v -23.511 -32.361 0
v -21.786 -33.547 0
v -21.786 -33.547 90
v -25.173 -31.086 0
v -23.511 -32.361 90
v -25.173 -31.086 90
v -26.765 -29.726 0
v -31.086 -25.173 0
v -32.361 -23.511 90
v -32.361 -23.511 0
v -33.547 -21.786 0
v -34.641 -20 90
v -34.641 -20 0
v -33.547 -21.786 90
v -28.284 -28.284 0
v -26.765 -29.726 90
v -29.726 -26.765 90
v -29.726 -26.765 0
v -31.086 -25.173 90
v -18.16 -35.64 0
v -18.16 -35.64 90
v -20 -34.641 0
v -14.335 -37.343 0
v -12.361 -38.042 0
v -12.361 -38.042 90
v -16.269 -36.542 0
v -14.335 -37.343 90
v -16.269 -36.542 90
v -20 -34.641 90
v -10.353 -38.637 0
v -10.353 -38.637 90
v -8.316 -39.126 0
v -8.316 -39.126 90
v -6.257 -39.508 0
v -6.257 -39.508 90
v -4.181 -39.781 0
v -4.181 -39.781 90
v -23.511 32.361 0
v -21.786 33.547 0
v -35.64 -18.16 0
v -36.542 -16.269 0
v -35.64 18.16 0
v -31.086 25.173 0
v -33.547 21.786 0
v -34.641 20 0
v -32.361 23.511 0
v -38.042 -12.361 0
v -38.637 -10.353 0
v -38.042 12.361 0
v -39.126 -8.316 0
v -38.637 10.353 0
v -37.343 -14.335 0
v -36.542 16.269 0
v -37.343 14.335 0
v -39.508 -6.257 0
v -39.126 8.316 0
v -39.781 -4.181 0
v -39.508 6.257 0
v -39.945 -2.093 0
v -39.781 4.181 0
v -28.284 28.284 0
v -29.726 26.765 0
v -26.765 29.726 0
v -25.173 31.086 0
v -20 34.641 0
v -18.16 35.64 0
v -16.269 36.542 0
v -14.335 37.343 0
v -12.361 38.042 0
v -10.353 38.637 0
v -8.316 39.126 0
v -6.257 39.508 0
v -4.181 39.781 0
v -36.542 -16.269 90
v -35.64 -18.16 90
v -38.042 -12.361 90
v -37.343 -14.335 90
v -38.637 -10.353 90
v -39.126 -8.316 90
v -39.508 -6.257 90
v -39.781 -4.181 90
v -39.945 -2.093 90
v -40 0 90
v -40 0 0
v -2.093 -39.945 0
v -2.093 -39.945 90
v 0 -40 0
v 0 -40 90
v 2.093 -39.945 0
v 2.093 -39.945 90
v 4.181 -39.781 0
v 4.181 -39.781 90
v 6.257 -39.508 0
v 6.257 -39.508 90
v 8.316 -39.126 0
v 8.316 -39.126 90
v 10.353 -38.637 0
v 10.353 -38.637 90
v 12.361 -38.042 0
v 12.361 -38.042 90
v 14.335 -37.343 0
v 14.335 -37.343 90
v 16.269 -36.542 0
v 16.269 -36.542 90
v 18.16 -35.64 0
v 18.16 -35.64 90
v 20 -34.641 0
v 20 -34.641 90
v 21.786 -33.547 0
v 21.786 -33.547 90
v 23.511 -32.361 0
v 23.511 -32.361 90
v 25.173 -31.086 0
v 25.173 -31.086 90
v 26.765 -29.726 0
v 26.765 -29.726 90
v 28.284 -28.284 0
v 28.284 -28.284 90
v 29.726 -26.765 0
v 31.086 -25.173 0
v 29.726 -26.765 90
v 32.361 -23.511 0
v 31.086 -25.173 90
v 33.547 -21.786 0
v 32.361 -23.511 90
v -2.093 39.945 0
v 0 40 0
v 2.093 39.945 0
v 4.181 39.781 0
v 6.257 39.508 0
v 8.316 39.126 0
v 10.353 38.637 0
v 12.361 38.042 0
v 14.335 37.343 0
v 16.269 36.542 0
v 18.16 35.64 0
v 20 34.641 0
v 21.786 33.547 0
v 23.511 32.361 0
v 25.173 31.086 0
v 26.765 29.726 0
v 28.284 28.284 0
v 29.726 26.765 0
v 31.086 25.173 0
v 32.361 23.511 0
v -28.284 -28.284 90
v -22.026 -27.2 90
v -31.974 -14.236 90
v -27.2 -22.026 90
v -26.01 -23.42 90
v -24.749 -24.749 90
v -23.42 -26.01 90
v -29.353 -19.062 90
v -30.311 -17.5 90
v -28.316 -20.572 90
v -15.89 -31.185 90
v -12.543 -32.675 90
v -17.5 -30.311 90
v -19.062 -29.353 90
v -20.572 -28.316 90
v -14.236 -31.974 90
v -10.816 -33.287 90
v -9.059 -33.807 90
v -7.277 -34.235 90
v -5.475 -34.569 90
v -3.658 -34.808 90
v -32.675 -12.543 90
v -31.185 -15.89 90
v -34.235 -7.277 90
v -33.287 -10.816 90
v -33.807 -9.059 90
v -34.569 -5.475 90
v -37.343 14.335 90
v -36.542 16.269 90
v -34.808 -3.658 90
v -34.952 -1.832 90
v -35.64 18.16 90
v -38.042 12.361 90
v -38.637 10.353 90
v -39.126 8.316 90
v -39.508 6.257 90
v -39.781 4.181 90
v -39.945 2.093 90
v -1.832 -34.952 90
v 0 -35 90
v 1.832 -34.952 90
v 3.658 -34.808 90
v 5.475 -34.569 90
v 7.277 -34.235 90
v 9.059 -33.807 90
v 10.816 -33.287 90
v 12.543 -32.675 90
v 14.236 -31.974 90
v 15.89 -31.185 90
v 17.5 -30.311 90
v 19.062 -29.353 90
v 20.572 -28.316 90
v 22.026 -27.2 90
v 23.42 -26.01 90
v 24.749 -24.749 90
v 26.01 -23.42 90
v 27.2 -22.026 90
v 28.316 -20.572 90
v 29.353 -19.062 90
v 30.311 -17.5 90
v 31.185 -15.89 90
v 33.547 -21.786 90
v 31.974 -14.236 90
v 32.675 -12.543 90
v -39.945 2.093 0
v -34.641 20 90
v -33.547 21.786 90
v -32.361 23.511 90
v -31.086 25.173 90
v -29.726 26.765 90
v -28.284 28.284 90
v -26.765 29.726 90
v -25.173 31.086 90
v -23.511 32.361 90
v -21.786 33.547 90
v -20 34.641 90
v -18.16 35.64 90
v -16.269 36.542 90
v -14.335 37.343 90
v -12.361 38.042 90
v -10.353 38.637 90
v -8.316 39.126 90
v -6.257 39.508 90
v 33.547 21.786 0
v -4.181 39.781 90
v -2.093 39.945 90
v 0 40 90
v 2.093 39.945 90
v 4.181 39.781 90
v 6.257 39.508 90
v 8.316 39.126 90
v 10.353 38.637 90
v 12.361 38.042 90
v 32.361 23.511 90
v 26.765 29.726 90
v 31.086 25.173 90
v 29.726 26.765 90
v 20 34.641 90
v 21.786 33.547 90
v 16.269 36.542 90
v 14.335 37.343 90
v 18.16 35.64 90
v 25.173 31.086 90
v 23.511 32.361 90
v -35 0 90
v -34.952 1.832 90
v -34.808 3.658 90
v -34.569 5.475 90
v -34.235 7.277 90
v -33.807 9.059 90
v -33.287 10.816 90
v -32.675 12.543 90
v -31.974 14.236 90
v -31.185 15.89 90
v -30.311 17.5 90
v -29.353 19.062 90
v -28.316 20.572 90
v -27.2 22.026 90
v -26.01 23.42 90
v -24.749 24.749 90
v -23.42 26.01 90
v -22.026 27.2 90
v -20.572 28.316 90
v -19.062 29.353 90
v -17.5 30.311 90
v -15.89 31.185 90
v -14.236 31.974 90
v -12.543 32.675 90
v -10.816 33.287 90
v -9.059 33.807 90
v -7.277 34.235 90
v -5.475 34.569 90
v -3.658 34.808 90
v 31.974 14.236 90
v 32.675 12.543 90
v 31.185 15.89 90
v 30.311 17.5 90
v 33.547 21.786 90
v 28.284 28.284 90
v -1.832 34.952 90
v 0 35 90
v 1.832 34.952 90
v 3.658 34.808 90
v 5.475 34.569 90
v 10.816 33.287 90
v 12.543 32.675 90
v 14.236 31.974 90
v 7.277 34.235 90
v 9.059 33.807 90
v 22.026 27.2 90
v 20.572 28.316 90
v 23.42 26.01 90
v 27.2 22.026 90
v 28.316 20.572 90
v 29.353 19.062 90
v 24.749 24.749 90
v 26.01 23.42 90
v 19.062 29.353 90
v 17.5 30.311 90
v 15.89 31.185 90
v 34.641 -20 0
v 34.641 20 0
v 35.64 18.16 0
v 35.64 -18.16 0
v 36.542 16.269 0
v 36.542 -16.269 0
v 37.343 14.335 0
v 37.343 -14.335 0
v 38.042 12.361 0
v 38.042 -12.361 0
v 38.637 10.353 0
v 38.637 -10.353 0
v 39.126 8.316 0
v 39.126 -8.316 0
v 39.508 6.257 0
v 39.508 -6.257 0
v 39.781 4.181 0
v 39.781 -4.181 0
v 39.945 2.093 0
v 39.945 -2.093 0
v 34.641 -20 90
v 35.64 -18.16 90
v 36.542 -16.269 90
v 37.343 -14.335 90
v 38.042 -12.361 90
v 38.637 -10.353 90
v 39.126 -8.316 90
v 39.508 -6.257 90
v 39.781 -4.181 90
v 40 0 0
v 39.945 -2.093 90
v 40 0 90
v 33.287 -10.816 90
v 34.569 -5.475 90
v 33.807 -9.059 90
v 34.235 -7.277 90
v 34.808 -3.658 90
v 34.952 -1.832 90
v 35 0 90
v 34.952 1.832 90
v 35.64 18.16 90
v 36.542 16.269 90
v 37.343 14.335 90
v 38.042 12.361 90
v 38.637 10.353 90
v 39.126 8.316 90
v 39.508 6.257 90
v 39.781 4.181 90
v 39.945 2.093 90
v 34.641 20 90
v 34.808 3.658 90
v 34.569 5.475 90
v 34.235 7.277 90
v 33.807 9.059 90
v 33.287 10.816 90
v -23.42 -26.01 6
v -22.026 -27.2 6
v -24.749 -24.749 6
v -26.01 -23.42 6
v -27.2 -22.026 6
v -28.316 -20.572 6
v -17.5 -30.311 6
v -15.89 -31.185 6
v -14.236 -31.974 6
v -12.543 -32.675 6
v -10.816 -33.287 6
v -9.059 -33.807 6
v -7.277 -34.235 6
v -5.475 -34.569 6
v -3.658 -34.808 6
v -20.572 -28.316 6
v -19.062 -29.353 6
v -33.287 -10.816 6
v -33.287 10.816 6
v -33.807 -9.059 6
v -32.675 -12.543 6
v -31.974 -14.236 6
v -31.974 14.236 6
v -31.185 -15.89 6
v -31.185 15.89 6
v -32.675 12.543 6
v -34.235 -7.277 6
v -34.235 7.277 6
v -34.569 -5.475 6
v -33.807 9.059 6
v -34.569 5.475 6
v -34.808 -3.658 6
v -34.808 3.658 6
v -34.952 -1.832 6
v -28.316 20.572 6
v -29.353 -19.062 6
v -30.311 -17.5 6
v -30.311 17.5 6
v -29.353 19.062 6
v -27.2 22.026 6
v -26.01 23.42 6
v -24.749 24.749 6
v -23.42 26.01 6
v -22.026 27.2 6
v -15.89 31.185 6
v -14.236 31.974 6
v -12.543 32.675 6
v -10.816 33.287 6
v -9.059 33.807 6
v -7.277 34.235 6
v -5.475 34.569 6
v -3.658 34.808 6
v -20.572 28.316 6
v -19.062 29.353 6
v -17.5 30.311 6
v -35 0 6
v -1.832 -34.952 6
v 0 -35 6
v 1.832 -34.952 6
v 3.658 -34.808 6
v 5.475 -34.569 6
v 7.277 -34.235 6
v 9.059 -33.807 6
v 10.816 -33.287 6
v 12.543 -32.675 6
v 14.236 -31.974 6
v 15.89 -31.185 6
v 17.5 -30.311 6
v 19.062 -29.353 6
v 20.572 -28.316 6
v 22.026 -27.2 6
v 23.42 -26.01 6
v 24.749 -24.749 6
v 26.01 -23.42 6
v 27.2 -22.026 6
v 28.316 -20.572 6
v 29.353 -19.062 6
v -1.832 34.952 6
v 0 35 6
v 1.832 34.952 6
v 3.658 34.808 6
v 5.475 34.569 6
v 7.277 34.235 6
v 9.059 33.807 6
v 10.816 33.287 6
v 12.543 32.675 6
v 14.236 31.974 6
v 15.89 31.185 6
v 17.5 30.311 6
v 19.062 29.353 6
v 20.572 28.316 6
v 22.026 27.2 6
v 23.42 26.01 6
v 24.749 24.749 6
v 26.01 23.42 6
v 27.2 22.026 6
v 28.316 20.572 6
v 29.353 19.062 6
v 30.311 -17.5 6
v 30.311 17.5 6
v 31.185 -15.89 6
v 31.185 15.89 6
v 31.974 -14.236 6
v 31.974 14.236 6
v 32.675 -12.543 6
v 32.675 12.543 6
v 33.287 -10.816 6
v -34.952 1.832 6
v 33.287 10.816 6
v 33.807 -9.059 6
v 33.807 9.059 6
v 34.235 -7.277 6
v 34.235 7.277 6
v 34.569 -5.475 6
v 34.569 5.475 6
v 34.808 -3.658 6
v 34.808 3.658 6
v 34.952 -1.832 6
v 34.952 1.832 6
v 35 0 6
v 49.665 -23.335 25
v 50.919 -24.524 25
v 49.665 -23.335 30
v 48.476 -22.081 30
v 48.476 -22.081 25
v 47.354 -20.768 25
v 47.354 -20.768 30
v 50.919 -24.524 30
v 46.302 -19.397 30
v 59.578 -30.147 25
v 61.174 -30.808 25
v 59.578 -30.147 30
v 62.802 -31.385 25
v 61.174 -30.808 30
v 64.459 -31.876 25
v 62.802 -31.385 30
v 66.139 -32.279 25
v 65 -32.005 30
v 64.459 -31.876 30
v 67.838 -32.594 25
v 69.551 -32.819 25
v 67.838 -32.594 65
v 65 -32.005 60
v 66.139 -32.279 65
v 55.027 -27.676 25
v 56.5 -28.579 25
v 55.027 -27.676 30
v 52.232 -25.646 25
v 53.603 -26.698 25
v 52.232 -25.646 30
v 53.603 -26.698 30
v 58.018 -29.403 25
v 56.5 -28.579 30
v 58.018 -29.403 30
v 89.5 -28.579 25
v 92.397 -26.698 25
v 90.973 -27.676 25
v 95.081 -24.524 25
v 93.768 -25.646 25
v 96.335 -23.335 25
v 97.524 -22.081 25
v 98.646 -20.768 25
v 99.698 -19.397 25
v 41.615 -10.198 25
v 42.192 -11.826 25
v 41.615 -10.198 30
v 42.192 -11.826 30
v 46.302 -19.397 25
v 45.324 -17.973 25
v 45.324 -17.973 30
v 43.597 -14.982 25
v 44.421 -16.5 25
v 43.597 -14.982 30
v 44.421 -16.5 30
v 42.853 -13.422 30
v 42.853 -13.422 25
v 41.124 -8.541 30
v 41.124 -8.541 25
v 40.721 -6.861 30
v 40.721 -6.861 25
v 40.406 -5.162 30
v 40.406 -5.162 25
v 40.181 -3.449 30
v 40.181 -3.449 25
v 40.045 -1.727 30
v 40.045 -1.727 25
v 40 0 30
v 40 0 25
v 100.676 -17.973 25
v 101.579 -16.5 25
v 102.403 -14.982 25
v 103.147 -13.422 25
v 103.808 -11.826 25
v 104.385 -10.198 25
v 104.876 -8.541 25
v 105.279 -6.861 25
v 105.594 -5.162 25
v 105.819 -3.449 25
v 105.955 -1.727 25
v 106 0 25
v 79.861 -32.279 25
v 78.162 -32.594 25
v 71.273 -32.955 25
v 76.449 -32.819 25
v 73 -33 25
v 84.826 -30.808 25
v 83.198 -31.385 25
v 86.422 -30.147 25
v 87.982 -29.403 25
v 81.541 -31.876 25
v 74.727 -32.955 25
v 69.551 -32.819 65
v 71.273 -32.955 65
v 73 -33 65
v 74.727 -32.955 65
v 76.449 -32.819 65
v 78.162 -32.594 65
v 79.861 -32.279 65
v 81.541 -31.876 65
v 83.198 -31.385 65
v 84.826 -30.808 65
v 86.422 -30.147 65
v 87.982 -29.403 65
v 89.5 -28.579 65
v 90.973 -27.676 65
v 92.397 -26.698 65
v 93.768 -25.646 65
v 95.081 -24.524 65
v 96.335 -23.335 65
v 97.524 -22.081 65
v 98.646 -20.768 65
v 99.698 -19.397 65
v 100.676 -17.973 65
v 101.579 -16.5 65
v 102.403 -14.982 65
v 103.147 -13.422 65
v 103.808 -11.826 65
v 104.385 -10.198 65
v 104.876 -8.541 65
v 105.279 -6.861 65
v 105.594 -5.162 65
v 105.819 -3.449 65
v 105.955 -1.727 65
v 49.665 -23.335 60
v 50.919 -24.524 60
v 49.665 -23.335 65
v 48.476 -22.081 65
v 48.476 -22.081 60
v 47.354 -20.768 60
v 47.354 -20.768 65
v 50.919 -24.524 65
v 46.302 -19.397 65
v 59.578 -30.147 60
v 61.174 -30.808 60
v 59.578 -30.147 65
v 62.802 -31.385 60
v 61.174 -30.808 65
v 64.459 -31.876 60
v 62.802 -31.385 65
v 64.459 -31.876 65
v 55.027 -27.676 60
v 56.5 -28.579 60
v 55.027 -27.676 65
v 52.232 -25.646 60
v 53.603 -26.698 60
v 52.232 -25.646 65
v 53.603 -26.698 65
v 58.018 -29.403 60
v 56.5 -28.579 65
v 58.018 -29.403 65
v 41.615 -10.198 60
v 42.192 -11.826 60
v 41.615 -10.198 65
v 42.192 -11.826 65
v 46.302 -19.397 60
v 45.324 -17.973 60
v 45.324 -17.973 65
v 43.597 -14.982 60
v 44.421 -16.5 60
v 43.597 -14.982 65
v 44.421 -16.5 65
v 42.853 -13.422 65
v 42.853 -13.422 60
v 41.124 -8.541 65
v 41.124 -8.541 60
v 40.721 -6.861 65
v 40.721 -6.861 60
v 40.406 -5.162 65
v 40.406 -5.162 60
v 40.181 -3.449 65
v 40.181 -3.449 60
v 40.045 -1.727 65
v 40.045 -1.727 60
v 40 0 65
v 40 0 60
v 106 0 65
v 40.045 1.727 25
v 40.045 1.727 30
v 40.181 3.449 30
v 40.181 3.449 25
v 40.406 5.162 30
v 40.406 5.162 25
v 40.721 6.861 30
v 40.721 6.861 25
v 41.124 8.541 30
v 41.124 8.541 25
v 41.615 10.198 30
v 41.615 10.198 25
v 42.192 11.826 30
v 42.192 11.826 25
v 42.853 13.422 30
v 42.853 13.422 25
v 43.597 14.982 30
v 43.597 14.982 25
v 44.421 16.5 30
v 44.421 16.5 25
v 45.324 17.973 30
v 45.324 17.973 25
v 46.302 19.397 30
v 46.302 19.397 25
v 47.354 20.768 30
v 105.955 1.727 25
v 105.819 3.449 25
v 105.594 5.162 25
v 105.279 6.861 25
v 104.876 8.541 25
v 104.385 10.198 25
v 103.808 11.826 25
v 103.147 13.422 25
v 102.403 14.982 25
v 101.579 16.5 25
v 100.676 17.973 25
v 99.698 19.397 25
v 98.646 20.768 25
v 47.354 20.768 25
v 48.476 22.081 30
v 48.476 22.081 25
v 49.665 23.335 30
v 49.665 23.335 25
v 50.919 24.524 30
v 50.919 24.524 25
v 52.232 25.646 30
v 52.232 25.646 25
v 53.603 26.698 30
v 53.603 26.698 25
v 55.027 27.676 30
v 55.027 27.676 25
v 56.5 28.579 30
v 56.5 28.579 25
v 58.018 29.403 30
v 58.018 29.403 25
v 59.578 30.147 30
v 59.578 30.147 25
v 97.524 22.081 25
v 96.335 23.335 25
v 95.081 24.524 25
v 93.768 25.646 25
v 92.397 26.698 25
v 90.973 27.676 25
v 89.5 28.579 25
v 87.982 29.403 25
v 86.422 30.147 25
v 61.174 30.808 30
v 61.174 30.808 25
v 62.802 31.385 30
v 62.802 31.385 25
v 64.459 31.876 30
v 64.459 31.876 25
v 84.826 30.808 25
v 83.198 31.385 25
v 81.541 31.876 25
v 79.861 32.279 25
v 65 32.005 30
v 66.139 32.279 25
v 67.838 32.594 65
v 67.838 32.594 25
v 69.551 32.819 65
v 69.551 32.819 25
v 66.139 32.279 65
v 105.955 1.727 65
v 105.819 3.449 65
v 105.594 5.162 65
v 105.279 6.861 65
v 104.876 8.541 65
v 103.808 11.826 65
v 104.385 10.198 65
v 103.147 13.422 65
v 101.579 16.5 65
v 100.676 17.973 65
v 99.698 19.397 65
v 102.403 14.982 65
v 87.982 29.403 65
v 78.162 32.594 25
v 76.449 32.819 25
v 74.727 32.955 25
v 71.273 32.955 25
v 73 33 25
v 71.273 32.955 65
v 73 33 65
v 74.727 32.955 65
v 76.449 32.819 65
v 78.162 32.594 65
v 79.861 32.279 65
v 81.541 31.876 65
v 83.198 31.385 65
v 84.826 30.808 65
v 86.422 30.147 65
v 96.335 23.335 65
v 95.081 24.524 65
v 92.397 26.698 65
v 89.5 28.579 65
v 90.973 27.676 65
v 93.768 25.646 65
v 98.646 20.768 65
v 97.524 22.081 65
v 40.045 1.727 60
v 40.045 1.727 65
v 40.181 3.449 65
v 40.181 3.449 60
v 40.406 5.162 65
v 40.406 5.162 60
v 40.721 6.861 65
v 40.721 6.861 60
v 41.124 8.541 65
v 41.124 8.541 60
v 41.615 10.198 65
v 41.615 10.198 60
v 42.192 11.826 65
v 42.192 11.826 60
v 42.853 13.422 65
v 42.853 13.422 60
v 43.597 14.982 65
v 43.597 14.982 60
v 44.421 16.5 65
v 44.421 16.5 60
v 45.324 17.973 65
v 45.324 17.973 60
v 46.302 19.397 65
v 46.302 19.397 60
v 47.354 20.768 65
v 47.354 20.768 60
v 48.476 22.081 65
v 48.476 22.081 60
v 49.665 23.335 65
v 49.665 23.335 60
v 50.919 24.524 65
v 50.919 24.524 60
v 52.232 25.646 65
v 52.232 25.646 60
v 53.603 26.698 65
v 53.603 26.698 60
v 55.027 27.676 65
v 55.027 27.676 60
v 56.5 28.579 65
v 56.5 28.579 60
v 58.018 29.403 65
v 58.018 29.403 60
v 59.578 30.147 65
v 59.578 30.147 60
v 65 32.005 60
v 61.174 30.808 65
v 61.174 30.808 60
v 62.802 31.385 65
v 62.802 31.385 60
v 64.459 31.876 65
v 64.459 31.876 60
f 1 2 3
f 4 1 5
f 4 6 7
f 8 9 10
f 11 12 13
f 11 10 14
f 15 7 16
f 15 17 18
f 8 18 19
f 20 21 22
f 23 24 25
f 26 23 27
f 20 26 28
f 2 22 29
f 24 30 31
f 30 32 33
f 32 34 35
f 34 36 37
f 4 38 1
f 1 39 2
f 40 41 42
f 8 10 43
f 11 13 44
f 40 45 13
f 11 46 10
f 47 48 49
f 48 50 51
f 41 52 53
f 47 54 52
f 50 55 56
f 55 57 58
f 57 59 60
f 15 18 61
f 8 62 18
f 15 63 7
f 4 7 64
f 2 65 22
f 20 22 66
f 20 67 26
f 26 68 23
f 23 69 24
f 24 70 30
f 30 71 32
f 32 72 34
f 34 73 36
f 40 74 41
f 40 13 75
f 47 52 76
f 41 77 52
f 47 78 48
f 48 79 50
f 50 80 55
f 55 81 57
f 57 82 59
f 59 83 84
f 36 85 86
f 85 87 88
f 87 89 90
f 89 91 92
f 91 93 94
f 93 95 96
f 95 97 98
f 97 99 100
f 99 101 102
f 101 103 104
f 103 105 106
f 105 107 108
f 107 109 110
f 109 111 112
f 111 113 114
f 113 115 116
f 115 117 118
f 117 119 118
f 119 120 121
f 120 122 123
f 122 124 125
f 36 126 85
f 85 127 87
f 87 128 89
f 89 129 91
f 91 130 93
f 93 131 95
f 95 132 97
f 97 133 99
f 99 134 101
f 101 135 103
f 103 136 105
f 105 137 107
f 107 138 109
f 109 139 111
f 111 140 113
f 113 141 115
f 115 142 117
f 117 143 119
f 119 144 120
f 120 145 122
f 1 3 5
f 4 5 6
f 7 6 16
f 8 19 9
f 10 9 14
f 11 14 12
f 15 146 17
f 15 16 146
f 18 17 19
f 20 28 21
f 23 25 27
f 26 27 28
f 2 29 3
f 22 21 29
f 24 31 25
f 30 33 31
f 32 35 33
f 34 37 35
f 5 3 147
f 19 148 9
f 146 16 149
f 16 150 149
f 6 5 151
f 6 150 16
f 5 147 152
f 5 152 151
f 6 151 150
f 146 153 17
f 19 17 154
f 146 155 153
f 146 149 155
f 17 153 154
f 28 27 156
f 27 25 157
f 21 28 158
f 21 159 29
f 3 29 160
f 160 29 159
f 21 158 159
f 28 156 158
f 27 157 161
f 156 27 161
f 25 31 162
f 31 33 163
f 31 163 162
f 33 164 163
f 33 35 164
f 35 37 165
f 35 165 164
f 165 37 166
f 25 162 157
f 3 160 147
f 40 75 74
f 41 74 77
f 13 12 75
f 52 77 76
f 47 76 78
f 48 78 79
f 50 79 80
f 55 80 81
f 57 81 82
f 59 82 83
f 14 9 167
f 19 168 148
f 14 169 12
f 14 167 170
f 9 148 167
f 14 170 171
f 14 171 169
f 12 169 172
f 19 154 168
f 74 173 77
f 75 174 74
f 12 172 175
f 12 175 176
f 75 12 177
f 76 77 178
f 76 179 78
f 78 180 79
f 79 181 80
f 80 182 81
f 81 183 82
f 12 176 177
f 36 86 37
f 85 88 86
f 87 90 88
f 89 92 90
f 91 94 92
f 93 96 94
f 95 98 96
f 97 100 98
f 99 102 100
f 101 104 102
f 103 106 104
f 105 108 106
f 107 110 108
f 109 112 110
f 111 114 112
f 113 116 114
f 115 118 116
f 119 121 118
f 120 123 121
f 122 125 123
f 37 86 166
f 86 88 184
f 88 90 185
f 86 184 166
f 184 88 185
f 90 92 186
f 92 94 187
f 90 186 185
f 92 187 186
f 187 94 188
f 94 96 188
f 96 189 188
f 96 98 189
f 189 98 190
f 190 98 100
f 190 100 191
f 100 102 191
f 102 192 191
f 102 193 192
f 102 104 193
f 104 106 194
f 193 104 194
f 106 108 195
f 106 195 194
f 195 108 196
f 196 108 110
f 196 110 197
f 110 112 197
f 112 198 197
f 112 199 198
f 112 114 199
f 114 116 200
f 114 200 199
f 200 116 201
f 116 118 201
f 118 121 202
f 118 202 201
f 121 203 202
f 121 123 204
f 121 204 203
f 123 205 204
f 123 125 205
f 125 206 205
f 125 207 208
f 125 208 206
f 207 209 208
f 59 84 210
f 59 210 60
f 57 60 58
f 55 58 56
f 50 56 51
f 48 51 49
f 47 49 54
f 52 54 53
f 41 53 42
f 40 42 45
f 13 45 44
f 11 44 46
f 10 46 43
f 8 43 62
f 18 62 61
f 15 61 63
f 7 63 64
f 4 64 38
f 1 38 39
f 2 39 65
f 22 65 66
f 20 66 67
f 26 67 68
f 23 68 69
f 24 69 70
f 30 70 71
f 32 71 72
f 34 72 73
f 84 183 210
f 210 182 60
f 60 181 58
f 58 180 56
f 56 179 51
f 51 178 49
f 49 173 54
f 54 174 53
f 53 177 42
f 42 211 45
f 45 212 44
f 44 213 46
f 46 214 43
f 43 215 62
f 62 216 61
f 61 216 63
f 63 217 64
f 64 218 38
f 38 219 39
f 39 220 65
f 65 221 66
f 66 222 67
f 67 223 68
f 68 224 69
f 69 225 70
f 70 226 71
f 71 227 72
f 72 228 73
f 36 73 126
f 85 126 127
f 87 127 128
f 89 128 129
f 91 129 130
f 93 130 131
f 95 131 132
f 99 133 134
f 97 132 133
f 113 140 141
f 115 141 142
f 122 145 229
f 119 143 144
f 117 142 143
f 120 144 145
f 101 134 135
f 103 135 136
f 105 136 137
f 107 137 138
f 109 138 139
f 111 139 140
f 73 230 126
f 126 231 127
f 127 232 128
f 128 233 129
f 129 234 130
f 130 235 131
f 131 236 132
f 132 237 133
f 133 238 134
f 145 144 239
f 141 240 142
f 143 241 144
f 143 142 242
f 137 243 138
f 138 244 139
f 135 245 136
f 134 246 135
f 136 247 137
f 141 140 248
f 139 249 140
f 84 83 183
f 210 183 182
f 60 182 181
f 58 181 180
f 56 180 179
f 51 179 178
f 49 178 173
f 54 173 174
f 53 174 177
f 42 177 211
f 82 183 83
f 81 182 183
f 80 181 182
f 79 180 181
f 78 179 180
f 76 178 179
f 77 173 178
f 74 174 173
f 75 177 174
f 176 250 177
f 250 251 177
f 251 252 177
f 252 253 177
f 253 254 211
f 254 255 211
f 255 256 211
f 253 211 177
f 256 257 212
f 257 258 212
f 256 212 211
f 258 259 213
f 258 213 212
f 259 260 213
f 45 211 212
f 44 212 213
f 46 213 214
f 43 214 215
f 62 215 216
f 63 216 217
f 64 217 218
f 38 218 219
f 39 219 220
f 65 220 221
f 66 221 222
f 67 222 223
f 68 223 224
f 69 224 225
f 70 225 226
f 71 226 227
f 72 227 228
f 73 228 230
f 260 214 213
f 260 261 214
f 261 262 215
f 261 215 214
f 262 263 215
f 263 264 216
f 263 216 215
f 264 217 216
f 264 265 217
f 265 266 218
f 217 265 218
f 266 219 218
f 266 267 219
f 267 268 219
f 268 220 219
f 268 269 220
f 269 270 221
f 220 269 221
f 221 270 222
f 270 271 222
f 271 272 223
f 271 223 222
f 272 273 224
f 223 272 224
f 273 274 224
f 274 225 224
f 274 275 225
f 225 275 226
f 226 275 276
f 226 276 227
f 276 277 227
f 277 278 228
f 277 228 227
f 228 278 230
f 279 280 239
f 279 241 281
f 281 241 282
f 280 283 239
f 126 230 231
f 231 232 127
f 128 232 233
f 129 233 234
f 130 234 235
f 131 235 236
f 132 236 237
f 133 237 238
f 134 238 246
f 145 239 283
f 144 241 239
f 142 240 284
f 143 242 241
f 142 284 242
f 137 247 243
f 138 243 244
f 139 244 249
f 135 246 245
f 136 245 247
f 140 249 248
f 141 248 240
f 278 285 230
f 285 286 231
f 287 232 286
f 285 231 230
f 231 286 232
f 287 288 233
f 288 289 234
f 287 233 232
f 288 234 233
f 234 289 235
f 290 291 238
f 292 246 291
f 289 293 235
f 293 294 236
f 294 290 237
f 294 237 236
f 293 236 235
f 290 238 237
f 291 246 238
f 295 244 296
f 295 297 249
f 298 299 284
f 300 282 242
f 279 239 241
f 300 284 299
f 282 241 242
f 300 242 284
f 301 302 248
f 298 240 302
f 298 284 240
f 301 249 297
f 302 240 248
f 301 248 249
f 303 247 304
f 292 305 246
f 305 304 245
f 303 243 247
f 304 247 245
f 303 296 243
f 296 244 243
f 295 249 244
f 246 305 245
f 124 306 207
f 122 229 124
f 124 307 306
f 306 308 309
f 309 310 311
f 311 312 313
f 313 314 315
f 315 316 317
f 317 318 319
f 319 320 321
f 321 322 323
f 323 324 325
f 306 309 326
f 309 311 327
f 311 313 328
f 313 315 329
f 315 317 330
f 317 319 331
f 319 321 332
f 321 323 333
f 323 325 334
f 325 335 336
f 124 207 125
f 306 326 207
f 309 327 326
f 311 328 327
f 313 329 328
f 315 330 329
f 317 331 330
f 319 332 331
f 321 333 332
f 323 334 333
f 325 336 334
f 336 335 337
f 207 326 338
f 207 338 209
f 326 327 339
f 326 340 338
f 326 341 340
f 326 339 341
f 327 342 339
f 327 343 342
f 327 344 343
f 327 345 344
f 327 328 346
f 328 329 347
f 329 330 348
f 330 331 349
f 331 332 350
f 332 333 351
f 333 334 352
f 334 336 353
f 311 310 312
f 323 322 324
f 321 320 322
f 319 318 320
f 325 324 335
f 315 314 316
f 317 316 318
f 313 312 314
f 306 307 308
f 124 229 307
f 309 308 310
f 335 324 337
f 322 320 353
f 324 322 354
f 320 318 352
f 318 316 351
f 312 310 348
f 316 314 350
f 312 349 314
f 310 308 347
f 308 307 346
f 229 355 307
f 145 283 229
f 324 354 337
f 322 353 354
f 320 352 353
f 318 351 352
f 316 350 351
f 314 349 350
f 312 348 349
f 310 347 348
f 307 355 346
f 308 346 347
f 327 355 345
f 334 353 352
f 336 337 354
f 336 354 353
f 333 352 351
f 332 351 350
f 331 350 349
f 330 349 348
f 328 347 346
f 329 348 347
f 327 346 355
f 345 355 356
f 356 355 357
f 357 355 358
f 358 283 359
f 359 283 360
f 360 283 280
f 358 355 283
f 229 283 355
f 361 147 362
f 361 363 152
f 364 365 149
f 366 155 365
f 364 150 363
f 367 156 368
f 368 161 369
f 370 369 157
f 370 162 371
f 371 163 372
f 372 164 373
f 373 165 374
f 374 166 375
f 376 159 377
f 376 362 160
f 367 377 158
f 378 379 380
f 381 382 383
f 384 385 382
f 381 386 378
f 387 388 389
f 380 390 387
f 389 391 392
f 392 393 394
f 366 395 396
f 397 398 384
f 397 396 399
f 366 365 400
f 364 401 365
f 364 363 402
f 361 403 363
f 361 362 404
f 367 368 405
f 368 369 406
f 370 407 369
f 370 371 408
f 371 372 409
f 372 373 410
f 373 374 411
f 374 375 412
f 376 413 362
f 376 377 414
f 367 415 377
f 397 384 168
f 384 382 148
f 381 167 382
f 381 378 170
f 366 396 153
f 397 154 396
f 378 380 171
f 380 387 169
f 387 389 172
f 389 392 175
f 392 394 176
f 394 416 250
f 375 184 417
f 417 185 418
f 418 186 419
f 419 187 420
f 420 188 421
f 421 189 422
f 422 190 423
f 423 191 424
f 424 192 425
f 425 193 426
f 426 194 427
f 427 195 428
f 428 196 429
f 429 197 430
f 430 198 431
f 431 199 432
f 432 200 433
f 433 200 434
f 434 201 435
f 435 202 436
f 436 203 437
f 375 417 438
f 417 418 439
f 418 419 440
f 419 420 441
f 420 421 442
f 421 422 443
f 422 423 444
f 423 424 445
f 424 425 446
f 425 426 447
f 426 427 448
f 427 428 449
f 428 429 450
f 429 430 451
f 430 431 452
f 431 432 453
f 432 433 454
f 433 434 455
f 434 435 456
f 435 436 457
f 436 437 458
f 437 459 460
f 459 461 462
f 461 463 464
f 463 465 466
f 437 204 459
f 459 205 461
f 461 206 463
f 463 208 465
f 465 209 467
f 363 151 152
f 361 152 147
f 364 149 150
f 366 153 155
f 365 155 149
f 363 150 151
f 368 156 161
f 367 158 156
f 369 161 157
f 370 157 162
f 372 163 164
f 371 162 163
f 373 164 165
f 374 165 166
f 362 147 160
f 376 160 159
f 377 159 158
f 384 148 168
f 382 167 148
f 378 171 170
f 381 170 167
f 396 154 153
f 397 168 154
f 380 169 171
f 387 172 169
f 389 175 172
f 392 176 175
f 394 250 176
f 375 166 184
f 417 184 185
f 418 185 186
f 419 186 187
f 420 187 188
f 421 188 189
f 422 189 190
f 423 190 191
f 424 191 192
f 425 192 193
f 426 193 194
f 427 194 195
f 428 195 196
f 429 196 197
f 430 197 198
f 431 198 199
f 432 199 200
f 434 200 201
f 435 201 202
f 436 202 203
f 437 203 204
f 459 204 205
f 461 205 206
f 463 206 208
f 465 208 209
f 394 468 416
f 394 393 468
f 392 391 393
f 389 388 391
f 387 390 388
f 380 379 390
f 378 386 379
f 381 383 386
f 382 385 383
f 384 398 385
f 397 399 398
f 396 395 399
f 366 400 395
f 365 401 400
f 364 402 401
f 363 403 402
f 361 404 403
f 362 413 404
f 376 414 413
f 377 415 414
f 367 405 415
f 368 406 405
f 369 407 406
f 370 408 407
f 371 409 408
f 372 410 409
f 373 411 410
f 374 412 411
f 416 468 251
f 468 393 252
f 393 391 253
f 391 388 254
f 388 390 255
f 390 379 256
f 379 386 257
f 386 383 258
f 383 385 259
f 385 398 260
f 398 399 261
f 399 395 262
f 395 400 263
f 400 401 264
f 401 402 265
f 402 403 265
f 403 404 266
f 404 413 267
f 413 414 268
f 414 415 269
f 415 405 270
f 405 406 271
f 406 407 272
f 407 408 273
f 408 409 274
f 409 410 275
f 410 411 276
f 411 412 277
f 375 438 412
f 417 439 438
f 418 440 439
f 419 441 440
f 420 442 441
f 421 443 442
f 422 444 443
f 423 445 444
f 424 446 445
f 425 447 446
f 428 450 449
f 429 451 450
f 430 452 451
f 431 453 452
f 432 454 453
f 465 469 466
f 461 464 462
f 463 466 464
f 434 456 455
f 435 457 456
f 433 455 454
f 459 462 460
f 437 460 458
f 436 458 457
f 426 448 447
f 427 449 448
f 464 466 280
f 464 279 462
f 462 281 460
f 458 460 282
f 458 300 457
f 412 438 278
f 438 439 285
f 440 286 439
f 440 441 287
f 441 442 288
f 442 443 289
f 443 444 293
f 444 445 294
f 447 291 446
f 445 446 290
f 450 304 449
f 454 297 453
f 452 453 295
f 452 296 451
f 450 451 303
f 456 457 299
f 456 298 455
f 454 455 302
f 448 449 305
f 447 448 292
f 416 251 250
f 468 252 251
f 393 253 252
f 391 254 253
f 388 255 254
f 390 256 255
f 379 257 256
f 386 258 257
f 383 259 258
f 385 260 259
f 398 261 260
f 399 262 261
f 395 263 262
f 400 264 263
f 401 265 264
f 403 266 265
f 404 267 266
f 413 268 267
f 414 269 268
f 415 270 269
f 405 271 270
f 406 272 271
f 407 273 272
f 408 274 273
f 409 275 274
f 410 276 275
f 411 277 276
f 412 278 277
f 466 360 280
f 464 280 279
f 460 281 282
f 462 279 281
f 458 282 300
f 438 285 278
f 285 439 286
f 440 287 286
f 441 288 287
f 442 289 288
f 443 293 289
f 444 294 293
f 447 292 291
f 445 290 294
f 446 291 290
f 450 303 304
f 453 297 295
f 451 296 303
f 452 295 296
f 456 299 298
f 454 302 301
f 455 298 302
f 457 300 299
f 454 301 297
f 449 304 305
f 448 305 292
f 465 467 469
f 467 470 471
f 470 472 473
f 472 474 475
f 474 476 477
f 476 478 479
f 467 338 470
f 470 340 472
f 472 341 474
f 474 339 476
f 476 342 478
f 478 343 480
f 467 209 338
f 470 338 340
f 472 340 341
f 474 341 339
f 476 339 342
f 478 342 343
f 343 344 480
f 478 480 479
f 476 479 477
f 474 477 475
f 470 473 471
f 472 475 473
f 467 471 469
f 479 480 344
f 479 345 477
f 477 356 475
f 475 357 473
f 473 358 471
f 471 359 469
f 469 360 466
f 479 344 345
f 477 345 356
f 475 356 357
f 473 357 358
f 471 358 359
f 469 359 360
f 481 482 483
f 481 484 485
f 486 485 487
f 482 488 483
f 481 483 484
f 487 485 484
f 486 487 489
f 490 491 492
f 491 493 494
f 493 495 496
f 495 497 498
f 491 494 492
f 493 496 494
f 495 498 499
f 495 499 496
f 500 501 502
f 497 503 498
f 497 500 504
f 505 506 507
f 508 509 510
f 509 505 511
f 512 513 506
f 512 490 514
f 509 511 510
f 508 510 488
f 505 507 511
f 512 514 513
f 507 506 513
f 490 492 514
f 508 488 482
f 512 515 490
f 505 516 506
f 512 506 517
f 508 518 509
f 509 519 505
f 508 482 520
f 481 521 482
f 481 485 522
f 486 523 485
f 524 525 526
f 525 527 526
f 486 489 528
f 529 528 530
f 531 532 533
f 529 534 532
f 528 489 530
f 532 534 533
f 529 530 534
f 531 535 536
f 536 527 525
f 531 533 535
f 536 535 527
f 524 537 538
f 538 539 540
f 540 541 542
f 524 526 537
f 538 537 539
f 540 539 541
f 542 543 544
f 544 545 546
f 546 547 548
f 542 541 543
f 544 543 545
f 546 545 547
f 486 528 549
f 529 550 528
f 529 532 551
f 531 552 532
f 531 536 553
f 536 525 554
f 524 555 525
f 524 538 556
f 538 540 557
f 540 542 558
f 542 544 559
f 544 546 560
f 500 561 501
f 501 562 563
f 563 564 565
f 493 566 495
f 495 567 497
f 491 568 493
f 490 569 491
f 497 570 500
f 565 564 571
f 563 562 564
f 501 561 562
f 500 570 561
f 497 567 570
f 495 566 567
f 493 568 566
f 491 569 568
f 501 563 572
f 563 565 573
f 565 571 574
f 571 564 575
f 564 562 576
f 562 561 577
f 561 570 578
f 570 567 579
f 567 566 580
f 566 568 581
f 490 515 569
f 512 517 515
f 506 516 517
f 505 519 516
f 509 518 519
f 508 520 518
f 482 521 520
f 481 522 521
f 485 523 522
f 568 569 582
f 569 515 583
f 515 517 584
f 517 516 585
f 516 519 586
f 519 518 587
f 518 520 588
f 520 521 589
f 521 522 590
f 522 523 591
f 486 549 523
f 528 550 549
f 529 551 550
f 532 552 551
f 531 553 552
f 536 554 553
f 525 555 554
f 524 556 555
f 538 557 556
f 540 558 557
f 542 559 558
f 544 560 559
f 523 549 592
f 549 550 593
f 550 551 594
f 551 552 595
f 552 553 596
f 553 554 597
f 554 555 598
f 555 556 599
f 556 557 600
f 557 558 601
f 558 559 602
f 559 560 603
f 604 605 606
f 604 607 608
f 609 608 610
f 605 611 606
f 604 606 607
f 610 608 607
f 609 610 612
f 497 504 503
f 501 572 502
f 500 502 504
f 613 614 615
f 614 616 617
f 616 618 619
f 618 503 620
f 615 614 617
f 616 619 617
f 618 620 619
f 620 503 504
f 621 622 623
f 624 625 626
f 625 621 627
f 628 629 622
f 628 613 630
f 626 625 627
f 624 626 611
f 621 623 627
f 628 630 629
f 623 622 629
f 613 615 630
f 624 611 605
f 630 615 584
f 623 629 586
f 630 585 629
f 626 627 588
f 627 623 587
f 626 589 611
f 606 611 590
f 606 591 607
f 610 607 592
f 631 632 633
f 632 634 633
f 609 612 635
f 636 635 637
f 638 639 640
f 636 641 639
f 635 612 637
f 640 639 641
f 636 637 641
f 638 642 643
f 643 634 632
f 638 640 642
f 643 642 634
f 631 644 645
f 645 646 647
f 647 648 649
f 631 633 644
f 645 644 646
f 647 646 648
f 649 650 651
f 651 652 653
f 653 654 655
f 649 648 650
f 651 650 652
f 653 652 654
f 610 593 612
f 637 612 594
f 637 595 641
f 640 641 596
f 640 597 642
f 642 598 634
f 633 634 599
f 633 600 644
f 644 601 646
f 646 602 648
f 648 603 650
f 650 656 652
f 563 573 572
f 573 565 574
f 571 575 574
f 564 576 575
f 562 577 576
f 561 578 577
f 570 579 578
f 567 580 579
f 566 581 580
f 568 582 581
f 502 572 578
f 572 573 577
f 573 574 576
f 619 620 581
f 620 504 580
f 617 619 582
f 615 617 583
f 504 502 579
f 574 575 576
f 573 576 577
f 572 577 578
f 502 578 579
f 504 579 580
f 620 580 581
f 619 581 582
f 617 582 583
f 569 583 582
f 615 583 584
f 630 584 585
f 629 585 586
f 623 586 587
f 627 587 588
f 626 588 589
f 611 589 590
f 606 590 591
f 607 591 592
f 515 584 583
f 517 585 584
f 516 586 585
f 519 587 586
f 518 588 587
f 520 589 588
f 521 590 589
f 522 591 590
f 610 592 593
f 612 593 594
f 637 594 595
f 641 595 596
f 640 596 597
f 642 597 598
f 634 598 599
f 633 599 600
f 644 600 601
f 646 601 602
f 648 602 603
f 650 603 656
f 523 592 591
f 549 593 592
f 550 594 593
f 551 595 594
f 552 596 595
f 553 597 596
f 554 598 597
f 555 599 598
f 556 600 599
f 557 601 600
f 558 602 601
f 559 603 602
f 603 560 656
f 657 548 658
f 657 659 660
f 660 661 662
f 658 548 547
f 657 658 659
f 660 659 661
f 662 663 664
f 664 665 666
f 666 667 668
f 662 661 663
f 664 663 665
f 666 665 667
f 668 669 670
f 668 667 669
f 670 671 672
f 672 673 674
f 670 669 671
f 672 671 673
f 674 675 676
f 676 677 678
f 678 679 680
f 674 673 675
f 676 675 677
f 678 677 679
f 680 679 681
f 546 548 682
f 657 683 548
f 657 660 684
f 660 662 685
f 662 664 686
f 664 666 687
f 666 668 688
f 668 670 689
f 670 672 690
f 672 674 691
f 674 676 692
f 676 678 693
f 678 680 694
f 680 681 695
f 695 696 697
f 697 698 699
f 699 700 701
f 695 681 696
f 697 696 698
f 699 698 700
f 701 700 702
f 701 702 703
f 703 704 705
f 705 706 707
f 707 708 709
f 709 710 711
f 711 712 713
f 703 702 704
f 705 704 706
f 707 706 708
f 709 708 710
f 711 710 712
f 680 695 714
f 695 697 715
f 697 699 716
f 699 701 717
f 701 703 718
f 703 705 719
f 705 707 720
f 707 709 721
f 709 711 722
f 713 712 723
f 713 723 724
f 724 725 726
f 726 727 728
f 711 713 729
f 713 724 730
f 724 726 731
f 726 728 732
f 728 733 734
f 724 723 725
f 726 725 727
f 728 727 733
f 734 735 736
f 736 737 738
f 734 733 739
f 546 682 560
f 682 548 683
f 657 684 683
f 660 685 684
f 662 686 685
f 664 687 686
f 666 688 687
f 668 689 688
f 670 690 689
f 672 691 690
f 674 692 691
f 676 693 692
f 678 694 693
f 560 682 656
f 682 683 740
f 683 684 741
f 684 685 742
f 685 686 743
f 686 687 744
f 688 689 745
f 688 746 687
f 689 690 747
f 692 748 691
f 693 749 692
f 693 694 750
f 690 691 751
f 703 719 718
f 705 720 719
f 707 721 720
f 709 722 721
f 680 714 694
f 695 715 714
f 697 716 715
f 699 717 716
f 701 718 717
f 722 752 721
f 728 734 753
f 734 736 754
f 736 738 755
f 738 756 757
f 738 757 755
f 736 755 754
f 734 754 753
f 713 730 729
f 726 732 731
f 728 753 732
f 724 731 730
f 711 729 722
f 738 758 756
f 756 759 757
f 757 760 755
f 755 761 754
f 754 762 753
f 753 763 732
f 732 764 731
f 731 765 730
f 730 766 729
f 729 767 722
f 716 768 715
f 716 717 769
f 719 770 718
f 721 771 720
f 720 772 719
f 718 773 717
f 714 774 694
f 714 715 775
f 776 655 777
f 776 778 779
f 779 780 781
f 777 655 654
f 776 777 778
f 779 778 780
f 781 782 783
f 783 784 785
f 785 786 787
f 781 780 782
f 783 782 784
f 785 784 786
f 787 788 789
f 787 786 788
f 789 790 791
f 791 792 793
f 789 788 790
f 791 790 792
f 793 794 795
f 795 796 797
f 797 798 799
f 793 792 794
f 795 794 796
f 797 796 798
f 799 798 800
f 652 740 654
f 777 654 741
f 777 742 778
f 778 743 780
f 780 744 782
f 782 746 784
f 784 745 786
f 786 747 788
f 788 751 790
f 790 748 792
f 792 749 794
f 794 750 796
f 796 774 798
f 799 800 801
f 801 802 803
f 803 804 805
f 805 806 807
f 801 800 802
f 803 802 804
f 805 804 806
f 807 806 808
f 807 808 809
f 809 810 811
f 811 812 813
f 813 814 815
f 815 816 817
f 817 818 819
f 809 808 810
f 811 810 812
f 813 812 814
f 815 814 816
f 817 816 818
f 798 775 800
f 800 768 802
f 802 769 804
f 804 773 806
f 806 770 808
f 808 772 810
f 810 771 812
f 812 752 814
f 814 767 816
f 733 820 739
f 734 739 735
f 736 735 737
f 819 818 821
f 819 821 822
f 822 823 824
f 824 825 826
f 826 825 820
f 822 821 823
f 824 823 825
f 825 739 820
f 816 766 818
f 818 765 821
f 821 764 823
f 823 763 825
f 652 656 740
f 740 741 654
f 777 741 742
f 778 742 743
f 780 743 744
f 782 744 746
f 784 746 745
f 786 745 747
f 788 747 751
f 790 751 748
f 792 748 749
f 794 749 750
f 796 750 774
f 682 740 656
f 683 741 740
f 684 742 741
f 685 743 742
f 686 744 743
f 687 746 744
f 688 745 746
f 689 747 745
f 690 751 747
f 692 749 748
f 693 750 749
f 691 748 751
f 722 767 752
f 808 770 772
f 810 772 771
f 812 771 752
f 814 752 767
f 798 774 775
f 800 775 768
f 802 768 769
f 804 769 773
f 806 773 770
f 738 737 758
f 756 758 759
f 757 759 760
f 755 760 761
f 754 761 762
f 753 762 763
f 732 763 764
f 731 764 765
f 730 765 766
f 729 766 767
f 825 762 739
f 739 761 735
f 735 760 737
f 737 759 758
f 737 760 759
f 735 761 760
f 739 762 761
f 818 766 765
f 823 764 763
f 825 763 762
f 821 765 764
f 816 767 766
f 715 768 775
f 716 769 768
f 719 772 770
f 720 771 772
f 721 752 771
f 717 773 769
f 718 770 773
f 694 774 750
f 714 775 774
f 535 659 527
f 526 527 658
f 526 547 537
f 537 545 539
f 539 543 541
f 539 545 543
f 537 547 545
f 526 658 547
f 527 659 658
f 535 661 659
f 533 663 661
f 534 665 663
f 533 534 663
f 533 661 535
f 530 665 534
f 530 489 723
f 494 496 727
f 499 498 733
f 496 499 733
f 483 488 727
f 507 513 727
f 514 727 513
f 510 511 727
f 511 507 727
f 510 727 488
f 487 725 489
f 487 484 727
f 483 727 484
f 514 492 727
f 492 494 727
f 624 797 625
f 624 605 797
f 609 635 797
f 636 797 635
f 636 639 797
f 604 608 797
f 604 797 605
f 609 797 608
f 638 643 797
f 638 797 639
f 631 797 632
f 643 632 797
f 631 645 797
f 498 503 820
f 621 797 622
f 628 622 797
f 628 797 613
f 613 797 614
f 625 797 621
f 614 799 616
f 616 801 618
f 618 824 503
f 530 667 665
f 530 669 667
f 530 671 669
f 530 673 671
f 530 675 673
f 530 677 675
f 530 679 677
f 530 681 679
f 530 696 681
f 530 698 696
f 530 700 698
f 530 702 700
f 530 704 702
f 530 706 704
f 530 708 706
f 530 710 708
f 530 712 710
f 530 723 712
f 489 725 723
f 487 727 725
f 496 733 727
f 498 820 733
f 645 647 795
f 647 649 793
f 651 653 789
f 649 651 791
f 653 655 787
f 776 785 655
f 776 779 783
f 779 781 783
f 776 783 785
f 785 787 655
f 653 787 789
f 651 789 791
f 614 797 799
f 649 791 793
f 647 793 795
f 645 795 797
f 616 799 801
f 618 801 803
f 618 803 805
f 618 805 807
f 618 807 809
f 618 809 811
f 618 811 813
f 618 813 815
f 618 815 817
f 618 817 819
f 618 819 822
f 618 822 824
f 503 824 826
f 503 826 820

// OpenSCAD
// OpenSCAD: マグカップ（修正版）
// 単位: mm

$fn = 120; // 円を滑らかに

// -------- パラメータ --------
mug_outer_r = 40;    // 外半径 (外径 80)
mug_inner_r = 35;    // 内半径 (内径 70)
mug_h = 90;          // 高さ
bottom_thickness = 6;

handle_wall = 8;            // 取手の厚み（外側と内側の差）
inner_open_w = 25;          // 取手内側空間の幅 (指 3 本ぐらい)
inner_open_h = 30;          // 取手内側空間の高さ
R_out = inner_open_w + handle_wall; // 取手外側半円の半径
handle_extrude_h = inner_open_h + 10; // 取手の垂直厚み（内空間よりやや大）
mug_center_z = mug_h/2;

// 取手の平面（フラット面）の X 座標（本体外周に合わせる）
flat_face_x = mug_outer_r; // フラット面をちょうど本体外周に合わせる
outer_center_x = flat_face_x + R_out; // 半円中心の X

// 取手内空間の位置（Z と X）
inner_void_left_x = flat_face_x; // 内側空間は本体外周に開口するようにする
inner_void_z = mug_center_z - inner_open_h/2;
handle_z_bottom = mug_center_z - handle_extrude_h/2;

// -------- モジュール --------
module mug() {
    difference() {
        // 外側の円筒
        translate([0,0,0]) cylinder(h=mug_h, r=mug_outer_r);
        // 内側の空洞（底面の厚みを残す）
        translate([0,0,bottom_thickness]) cylinder(h=mug_h - bottom_thickness, r=mug_inner_r);
    }
}

module handle_piece() {
    // 取手外形（半円＋フラット面）を押し出し、内側の指空間を差し引く
    difference() {
        // 外形: 半円を矩形で切り取ってフラットにする
        translate([0,0,handle_z_bottom])
            linear_extrude(height = handle_extrude_h, center = false, convexity = 10)
                intersection() {
                    // 半径 R_out の円（半分を残す）
                    translate([outer_center_x, 0]) circle(r=R_out);
                    // フラット面で切る矩形（左端を flat_face_x にする）
                    // 少し余裕を持たせて縦方向は大きく取る
                    translate([flat_face_x - 1, -(R_out + 10)])
                        square([ (outer_center_x + R_out) - (flat_face_x - 1) + 20, 2*(R_out + 10) ]);
                }

        // 内側の指空間を差し引く（外側に開口するよう左端を flat_face_x に合わせる）
        translate([inner_void_left_x, -(R_out + 10), inner_void_z])
            cube([inner_open_w, 2*(R_out + 10), inner_open_h]);
    }
}

// -------- 組み立て --------
union() {
    mug();
    handle_piece();
}
